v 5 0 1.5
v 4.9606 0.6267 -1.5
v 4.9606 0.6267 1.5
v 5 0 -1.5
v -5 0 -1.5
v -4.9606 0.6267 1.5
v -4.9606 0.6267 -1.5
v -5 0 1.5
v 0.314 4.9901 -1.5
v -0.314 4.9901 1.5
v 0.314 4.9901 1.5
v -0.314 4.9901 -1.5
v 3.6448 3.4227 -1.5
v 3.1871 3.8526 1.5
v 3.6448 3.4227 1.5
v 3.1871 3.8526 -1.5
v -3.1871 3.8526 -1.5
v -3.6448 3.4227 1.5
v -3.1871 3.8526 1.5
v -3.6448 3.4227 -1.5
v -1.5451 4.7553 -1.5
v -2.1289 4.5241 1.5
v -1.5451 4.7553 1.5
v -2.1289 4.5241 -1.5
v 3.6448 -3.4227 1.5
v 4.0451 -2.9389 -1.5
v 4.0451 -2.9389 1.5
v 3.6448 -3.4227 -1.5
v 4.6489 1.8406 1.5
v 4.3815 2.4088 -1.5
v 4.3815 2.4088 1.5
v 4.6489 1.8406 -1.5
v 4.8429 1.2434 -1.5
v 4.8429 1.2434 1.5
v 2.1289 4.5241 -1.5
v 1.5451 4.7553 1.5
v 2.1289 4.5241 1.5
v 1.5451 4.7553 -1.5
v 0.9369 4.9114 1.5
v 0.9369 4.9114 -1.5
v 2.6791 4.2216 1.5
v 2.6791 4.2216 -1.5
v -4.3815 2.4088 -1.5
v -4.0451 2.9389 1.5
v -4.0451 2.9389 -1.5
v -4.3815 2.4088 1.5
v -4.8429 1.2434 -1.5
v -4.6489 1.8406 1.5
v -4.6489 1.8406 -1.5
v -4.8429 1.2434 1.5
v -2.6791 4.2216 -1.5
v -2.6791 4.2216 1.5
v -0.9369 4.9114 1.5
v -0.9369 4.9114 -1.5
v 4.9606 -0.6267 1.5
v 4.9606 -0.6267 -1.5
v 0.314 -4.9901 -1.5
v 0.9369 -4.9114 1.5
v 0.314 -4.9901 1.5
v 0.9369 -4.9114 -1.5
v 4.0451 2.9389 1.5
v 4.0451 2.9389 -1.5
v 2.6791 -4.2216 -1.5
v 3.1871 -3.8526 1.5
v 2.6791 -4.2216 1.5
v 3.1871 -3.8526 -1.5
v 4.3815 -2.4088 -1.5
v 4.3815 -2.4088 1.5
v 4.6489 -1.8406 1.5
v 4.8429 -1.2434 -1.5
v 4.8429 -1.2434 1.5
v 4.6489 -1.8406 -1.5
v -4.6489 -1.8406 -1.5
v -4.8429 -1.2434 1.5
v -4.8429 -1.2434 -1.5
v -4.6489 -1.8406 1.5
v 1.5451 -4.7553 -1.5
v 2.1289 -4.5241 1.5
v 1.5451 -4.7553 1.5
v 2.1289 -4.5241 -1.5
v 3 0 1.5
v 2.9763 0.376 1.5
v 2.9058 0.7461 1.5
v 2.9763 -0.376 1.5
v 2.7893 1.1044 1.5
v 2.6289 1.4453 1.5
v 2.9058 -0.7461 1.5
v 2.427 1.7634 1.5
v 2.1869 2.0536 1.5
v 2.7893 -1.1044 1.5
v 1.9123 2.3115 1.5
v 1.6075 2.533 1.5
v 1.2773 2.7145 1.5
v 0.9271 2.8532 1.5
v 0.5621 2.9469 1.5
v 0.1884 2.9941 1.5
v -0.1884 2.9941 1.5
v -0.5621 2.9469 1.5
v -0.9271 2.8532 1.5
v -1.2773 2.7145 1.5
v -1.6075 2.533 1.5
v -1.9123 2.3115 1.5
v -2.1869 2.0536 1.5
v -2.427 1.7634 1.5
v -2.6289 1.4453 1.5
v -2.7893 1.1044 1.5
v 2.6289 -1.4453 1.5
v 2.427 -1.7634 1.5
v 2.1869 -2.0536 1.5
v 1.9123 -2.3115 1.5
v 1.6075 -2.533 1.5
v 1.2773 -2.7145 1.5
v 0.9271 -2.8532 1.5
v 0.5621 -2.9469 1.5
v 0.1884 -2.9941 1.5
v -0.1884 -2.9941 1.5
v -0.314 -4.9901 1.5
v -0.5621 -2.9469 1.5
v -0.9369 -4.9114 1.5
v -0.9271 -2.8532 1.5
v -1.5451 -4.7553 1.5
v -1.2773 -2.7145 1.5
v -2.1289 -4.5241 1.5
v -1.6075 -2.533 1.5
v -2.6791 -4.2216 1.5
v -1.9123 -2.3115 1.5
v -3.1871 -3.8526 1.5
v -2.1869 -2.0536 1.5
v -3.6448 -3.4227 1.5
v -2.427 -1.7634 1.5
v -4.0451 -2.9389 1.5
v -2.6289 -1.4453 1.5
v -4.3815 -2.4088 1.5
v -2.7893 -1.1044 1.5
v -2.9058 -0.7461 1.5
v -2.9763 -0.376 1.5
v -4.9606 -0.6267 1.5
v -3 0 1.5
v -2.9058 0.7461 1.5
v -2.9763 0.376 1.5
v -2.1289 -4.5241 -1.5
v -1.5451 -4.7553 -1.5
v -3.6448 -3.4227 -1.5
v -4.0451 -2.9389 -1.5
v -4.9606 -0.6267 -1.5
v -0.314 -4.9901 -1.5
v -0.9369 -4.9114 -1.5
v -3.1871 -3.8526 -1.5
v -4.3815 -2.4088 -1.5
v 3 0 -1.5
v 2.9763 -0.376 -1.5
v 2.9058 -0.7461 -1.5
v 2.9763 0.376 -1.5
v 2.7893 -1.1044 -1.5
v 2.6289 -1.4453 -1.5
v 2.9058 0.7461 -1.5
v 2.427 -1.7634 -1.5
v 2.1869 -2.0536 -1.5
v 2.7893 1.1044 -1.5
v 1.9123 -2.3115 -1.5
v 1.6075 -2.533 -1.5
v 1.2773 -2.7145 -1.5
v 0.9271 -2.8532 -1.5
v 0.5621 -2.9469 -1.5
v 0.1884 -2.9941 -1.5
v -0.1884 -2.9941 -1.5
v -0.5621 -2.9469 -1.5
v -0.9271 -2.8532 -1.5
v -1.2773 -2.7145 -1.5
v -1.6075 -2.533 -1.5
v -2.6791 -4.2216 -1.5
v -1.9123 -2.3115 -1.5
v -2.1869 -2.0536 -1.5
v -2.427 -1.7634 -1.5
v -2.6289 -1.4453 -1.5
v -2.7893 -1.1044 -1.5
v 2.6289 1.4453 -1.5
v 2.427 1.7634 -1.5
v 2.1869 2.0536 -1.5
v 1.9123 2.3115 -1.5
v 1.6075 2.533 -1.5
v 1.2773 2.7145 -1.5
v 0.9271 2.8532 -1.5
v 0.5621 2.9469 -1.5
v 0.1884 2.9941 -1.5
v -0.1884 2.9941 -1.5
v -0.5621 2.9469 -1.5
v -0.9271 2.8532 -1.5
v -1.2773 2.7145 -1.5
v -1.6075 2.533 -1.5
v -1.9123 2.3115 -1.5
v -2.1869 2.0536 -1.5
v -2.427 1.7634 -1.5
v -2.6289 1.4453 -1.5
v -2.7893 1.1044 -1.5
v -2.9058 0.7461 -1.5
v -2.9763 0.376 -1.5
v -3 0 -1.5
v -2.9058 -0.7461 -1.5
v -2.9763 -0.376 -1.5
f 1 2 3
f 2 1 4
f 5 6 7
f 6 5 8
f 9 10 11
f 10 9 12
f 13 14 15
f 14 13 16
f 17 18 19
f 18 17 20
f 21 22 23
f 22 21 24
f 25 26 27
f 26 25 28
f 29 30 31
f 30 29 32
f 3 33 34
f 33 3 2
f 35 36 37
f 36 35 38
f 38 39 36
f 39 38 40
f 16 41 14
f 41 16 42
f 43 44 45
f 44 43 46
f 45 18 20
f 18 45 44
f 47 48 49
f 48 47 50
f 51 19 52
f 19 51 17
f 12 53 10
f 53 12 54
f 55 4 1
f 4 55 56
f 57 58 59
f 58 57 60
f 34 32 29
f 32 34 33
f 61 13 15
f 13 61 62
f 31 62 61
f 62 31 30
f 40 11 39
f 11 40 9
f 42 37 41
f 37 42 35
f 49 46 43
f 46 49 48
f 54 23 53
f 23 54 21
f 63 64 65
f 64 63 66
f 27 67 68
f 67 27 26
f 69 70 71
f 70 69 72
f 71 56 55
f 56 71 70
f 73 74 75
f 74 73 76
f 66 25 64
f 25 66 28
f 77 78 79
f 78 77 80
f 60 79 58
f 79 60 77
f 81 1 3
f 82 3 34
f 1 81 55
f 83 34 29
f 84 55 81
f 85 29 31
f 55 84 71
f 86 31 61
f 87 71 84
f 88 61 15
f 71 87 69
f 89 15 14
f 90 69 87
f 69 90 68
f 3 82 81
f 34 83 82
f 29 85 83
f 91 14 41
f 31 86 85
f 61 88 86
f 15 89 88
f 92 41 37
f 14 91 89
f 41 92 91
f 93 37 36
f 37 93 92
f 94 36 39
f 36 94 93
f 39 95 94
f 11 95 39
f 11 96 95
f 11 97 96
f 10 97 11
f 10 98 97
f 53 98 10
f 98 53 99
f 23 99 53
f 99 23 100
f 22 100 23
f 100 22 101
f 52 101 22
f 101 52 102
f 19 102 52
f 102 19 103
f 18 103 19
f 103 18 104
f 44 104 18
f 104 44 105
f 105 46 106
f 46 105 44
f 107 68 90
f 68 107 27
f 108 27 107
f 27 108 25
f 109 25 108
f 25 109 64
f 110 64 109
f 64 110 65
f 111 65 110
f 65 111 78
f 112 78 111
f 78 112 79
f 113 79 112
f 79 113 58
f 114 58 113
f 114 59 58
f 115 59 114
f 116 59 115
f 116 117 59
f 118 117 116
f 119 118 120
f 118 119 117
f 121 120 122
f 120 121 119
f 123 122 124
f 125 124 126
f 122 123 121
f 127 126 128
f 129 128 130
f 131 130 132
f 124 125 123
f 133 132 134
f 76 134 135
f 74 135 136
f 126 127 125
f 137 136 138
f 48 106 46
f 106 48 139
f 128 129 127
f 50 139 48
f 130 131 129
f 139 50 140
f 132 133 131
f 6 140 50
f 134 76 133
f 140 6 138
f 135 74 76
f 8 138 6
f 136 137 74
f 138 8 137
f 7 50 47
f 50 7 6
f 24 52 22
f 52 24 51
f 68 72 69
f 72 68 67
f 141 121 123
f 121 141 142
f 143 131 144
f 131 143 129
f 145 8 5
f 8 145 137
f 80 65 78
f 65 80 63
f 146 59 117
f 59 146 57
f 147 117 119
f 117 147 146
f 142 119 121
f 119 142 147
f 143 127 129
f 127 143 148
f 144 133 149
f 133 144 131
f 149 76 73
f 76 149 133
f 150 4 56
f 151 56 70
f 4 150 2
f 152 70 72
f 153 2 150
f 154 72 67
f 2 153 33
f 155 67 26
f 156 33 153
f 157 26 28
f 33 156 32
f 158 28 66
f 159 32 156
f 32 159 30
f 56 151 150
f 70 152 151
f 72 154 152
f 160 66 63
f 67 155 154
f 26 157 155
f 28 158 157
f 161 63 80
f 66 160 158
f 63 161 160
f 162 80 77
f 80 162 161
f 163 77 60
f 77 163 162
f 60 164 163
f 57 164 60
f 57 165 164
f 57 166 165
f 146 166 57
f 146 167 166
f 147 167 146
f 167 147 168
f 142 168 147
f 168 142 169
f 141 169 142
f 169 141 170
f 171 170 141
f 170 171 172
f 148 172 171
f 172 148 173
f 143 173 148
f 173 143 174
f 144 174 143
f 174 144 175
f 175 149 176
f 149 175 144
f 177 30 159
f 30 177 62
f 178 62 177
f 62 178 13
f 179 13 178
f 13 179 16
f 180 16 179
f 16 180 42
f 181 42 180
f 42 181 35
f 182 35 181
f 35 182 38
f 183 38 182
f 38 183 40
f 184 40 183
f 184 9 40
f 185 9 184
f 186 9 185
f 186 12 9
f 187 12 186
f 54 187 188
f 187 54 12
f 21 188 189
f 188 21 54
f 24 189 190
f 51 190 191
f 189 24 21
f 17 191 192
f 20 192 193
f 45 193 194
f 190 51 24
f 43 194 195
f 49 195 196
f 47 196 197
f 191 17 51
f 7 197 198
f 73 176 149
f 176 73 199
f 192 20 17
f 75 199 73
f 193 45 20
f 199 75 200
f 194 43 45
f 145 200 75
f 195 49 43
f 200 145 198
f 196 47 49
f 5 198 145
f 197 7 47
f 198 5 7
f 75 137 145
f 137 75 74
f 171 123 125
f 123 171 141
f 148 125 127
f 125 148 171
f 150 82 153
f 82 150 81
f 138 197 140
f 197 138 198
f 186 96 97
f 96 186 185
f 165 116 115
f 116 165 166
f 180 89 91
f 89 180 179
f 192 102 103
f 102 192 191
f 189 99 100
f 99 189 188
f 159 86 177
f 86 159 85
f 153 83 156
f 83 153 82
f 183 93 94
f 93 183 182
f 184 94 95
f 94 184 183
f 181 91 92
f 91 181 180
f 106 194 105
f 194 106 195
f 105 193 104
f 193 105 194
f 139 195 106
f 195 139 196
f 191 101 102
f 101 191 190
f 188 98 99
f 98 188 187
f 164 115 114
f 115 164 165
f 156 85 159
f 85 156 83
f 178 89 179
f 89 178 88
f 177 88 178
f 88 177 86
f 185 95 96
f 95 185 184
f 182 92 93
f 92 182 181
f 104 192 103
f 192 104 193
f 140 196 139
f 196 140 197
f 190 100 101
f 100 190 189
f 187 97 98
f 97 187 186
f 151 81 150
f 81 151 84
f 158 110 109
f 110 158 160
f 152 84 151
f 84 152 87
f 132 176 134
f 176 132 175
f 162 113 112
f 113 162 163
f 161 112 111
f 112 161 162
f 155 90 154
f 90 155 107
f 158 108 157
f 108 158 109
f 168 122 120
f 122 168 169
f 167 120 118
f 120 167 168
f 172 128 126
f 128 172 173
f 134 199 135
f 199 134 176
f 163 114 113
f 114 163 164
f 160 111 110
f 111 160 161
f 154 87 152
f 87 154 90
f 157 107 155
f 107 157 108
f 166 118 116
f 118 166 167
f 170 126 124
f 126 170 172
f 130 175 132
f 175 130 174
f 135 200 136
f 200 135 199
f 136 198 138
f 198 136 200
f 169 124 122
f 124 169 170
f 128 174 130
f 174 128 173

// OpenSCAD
$fn = 50;


difference() {
	union() {
		translate(v = [0, 0, -1.5000000000]) {
			cylinder(h = 3, r = 5.0000000000);
		}
	}
	union() {
		translate(v = [0, 0, -100.0000000000]) {
			cylinder(h = 200, r = 3.0000000000);
		}
	}
}
